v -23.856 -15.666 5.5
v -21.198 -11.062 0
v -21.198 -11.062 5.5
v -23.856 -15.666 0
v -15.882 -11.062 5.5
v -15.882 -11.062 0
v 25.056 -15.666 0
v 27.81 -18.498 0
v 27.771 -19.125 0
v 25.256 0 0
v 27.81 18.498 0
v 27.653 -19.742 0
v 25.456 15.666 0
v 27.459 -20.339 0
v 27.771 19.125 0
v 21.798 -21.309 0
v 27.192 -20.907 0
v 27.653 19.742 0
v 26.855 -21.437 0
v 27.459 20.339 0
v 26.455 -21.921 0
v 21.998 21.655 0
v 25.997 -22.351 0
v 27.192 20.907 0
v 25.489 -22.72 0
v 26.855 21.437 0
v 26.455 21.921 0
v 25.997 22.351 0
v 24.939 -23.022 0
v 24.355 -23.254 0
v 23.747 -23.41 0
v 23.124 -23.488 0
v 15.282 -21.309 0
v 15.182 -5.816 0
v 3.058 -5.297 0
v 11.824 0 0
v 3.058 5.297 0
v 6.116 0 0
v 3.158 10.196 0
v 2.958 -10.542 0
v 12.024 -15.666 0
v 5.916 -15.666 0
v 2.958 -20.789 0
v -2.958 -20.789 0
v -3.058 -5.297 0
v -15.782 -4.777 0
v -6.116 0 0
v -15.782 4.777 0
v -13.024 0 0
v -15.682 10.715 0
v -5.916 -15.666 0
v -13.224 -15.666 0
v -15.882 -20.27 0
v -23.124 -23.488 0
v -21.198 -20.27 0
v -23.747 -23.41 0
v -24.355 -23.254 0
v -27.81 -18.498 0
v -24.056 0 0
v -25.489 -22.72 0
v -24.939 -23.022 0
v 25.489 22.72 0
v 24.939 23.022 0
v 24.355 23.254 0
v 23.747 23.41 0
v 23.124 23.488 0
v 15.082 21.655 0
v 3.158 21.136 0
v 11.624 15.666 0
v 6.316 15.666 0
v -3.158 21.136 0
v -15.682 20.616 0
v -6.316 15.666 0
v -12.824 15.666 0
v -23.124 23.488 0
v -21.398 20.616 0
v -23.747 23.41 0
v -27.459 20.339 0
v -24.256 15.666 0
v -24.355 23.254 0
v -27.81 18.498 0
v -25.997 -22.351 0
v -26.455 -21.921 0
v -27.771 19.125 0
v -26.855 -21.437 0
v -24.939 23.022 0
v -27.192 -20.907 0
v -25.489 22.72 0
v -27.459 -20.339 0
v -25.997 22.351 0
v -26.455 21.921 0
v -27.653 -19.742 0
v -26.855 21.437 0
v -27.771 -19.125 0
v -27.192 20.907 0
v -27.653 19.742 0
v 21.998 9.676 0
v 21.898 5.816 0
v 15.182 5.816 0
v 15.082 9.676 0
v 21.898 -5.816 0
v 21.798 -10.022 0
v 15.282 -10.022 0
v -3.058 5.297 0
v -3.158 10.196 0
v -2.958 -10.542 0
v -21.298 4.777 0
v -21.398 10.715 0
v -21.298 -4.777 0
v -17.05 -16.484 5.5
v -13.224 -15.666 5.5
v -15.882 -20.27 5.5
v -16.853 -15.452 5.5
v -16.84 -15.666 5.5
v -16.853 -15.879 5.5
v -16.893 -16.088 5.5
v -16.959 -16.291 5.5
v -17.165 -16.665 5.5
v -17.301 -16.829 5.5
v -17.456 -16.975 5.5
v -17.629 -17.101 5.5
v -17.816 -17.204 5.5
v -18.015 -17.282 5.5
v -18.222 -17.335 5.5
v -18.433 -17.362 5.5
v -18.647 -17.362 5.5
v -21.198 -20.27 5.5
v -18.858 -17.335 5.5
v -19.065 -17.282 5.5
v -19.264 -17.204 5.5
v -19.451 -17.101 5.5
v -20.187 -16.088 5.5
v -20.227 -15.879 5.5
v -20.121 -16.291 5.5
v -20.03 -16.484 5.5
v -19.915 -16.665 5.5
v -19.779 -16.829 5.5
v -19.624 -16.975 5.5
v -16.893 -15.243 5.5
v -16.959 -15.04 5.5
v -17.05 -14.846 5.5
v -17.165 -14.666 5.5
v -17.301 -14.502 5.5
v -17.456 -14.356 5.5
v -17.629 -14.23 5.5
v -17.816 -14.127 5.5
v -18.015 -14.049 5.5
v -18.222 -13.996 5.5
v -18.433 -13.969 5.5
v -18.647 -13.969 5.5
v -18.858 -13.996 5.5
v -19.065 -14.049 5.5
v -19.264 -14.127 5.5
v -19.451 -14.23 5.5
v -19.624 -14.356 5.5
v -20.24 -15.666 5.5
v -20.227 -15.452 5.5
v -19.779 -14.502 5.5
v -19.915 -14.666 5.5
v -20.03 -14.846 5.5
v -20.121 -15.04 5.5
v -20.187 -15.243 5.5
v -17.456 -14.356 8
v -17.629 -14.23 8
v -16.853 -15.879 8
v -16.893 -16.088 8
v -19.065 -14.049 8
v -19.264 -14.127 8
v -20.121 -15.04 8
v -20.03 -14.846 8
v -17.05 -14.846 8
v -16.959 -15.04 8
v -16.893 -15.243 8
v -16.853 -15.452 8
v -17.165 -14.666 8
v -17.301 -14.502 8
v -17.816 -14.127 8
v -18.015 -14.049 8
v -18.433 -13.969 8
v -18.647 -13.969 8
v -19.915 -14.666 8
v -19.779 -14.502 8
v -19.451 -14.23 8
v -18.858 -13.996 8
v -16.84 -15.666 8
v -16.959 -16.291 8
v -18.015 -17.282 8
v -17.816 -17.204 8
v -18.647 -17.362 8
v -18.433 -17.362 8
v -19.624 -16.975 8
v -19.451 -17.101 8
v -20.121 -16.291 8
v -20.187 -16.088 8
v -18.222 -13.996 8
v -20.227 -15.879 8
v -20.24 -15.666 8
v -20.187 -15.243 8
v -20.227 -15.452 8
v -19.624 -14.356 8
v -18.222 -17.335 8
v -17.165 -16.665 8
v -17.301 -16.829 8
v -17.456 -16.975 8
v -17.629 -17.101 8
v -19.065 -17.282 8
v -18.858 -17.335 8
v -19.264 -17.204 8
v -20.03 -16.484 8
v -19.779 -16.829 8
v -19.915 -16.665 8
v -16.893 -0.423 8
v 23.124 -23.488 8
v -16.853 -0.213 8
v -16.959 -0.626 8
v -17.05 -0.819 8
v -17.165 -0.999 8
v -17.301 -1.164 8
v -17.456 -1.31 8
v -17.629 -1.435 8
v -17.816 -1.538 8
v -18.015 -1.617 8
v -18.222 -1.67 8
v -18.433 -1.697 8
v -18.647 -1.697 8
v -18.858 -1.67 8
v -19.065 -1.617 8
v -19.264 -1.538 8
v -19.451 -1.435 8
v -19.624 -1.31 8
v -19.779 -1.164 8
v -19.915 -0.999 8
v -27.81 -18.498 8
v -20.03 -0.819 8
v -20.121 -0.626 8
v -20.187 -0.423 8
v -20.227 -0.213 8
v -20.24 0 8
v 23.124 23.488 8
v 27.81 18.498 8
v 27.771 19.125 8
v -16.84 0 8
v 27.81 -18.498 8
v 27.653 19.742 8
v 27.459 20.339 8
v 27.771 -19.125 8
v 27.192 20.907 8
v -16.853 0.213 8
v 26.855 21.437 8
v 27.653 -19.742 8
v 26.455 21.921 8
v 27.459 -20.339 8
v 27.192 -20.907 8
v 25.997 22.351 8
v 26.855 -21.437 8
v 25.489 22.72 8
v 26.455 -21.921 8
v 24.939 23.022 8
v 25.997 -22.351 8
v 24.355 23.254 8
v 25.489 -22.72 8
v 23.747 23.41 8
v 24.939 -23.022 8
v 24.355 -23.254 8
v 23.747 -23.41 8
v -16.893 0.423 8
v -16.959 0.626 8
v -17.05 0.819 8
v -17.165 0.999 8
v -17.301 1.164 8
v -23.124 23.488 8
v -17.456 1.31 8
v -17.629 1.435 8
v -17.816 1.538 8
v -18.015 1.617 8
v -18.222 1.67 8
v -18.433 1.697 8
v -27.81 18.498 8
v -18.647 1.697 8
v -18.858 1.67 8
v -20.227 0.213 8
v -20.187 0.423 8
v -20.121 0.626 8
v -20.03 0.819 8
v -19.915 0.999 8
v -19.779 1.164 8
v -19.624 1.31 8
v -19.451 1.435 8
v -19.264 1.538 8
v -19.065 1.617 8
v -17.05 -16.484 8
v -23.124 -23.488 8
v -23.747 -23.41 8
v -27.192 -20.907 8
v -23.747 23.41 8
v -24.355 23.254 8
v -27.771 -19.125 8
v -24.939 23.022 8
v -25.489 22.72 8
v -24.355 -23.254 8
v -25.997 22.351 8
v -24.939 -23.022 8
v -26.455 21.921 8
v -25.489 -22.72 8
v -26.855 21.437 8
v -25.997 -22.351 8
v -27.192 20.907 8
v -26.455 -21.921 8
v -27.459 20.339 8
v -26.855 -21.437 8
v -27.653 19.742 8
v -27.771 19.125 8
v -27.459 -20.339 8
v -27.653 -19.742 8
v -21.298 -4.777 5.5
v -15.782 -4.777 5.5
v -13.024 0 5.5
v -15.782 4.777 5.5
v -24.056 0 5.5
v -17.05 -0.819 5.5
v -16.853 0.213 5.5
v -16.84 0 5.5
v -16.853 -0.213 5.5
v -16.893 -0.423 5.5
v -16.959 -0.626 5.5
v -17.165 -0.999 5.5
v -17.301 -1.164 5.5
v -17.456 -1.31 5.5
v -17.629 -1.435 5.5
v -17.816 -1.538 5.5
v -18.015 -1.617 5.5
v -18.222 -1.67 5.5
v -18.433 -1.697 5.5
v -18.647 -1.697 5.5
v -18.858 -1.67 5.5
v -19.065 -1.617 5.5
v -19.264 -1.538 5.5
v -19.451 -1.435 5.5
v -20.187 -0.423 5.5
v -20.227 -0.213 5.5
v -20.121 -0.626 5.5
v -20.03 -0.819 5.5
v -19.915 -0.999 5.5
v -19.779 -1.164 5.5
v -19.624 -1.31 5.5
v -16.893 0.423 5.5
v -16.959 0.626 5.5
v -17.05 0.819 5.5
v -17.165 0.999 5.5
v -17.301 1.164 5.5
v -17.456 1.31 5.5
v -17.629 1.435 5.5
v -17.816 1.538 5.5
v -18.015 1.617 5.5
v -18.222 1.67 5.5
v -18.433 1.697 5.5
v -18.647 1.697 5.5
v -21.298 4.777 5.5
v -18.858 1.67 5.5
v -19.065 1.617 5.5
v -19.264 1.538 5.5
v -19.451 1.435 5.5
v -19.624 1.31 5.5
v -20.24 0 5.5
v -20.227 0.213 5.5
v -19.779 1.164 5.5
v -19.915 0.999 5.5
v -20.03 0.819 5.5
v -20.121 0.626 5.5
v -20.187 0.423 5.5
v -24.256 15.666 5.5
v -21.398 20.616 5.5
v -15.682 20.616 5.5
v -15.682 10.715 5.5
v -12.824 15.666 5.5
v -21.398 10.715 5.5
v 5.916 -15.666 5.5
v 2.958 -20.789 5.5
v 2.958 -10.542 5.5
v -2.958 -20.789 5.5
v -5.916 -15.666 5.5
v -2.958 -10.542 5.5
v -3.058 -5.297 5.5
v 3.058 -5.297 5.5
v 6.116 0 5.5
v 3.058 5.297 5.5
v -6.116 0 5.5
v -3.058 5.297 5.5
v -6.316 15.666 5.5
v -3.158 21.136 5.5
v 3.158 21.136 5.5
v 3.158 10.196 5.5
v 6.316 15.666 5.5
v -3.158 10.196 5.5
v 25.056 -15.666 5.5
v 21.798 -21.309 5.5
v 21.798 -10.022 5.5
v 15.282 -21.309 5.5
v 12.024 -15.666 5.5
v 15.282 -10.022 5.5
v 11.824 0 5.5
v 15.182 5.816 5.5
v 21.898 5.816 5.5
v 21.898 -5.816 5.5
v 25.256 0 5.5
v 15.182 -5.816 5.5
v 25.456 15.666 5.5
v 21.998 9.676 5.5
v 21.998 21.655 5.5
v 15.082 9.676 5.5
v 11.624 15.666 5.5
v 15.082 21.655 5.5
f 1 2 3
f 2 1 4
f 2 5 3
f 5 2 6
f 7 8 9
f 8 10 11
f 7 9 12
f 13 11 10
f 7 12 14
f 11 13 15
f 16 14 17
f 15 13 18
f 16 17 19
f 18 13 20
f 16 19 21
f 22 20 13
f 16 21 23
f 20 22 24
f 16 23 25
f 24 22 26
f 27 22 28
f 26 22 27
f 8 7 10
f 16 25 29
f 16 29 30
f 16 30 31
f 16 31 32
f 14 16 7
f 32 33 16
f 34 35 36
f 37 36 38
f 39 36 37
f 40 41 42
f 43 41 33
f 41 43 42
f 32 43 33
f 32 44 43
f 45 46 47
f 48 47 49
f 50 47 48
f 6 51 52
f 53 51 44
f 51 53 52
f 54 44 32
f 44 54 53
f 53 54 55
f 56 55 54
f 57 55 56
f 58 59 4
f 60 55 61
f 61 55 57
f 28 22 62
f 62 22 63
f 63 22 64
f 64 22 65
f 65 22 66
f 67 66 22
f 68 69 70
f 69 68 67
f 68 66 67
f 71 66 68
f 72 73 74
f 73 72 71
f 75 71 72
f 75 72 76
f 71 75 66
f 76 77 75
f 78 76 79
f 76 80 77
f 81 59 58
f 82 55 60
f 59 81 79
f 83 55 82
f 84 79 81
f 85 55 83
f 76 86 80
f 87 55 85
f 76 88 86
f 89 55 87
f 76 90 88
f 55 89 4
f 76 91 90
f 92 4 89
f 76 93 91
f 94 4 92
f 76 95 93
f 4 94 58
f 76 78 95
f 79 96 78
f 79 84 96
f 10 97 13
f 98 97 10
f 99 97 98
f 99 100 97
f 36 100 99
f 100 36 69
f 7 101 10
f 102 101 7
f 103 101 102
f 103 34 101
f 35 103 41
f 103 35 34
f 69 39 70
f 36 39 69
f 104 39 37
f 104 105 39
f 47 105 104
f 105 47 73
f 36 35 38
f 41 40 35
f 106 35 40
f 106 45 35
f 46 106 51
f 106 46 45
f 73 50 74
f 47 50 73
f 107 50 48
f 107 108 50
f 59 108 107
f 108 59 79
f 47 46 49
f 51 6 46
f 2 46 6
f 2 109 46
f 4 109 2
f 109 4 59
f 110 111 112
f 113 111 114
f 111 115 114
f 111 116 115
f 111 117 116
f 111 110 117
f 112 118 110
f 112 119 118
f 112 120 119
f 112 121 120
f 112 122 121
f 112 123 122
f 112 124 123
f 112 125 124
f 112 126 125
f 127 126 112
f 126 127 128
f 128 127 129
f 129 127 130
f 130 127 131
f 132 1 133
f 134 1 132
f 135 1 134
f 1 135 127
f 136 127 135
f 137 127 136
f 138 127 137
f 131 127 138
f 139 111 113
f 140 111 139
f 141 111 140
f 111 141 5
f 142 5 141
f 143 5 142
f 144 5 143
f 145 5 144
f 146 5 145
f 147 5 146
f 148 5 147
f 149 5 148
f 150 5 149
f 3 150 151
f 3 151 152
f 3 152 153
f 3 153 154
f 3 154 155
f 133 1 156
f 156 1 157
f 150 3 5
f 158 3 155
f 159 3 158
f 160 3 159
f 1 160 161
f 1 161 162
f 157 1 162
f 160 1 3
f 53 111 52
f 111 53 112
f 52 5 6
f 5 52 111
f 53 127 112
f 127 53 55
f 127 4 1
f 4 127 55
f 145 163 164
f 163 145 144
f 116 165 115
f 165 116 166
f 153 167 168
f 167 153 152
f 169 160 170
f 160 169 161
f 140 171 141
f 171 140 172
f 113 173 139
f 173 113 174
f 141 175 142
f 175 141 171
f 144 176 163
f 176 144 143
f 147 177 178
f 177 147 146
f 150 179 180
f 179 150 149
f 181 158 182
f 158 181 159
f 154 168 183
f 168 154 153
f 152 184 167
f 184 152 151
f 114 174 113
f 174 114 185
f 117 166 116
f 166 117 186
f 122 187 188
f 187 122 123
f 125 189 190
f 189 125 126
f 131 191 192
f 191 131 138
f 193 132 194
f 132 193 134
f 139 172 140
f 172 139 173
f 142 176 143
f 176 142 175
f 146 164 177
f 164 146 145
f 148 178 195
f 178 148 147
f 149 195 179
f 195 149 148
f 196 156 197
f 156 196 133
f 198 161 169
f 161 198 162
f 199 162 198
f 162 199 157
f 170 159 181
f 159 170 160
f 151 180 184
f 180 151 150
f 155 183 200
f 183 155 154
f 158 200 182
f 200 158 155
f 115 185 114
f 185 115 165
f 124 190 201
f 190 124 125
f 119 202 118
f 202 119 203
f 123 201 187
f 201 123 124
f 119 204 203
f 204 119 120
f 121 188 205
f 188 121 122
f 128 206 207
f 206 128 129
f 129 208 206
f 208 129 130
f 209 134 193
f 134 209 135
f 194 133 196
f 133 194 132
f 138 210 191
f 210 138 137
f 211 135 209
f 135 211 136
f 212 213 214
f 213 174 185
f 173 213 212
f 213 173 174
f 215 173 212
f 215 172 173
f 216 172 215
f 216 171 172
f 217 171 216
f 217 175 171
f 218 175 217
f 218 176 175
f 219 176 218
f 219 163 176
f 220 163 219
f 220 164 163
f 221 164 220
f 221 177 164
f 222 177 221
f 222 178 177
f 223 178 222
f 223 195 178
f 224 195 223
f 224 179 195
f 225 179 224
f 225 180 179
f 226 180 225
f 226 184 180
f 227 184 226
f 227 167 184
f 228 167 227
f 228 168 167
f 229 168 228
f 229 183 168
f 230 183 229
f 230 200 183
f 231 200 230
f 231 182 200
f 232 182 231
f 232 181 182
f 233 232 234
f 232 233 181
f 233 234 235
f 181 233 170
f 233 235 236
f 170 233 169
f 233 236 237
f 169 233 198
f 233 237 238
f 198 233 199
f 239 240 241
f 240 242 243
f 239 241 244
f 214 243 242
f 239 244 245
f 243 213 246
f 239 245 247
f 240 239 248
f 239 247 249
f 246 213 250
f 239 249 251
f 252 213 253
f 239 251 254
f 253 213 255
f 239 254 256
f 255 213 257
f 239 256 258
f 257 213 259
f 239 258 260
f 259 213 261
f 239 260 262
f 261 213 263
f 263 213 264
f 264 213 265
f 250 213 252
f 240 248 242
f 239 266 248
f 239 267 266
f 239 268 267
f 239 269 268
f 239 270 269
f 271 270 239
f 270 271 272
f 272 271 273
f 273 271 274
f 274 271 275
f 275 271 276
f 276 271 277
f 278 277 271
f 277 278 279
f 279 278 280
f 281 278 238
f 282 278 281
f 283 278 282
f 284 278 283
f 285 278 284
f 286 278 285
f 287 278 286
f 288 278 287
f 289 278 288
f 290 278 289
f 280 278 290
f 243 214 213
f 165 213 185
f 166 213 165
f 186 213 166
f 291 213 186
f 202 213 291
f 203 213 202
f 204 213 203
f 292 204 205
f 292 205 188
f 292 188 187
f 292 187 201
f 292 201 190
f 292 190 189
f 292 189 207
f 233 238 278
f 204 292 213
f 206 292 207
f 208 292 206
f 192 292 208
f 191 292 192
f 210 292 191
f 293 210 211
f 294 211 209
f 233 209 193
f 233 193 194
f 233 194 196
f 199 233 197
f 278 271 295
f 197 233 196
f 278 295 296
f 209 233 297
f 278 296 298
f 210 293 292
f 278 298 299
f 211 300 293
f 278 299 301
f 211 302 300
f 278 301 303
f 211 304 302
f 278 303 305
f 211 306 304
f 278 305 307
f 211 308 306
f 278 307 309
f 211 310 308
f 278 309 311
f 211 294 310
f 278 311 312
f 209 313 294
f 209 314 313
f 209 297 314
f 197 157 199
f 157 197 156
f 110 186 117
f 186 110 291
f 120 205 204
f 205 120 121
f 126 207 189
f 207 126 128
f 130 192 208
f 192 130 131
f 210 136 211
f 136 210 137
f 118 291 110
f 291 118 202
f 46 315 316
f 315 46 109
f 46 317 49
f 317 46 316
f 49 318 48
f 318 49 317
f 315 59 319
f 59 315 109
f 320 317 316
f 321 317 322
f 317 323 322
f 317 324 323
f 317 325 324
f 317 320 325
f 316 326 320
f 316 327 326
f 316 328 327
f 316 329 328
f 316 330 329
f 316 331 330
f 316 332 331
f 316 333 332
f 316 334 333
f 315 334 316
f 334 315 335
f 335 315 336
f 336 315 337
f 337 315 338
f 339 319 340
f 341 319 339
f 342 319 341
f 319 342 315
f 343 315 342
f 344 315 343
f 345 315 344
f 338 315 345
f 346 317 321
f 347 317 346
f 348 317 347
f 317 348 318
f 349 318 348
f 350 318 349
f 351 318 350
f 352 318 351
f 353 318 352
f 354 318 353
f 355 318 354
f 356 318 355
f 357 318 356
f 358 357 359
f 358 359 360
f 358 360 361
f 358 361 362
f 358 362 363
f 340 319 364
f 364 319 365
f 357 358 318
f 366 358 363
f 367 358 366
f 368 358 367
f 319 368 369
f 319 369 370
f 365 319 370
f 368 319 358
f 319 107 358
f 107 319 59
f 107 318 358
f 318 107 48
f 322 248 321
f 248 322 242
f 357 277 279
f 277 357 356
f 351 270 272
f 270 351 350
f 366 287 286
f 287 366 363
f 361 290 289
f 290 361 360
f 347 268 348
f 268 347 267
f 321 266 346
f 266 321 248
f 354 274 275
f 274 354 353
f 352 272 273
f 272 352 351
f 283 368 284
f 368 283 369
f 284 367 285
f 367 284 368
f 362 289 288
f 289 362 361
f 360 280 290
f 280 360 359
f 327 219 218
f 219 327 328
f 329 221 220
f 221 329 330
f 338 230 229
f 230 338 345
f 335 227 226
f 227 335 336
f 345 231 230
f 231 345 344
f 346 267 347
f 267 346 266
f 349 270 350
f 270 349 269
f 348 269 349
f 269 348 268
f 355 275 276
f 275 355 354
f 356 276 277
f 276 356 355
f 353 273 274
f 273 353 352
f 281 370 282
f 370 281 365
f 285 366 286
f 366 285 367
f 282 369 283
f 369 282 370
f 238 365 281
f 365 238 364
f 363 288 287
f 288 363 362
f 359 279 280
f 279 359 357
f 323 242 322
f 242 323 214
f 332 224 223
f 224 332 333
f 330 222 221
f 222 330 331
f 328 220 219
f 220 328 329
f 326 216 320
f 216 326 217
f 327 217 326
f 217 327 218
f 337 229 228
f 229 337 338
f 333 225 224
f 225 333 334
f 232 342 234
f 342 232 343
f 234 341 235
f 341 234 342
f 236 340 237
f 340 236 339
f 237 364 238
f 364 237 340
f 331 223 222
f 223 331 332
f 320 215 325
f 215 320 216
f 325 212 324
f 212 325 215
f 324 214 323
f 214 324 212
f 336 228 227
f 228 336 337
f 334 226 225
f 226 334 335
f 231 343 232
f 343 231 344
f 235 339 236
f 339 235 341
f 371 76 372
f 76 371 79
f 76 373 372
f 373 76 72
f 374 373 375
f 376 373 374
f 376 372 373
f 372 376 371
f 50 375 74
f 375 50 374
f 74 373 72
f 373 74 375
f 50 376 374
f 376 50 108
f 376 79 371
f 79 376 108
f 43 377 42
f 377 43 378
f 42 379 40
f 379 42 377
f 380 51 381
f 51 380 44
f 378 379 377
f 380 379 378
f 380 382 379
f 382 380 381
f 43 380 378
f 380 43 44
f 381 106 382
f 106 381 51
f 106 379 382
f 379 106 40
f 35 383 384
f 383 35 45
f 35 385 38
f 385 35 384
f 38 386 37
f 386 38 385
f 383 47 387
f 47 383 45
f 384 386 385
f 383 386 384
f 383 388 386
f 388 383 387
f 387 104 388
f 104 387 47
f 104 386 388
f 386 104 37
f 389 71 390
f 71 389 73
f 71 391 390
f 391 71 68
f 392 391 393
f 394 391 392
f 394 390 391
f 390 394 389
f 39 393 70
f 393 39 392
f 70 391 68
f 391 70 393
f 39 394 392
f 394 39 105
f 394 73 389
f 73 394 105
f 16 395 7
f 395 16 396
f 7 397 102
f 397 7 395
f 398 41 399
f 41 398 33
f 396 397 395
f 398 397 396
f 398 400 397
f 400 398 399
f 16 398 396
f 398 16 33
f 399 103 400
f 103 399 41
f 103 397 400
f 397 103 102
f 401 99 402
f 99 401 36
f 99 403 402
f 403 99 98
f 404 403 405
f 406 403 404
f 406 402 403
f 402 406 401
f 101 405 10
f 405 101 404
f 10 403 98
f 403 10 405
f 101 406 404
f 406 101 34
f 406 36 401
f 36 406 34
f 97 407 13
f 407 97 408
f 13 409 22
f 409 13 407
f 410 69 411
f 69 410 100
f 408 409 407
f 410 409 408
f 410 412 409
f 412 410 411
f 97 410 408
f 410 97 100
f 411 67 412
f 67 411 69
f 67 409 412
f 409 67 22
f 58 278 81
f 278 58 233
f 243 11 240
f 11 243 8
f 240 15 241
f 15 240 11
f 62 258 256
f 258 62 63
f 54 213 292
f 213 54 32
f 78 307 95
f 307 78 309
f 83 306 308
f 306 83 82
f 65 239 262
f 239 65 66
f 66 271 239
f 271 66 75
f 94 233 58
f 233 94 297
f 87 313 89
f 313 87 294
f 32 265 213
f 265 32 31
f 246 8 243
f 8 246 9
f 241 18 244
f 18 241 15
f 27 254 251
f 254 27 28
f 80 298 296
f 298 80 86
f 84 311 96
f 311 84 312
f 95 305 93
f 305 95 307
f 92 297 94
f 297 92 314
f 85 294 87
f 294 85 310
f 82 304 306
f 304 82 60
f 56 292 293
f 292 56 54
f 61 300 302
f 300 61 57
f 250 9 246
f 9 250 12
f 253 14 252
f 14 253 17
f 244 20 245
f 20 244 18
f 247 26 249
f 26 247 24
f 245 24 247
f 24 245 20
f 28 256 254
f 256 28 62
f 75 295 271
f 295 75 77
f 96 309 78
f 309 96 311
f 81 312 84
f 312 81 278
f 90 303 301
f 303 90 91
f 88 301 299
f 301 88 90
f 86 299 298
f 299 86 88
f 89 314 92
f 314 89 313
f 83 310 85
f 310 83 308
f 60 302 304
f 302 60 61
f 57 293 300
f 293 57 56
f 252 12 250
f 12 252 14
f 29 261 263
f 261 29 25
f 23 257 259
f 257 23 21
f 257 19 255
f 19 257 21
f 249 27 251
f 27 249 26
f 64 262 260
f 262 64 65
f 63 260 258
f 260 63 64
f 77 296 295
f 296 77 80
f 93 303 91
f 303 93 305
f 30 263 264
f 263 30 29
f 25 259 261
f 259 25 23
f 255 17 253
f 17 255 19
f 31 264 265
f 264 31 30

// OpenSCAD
$fn = 50;


difference() {
	union() {
		translate(v = [0, 0, 0]) {
			rotate(a = [0, 0, 0]) {
				hull() {
					translate(v = [-22.8100000000, 18.4982668977, 0]) {
						rotate(a = [0, 0, 0]) {
							translate(v = [0, 0, 0]) {
								rotate(a = [0, 0, 0]) {
									cylinder(h = 8, r = 5);
								}
							}
						}
					}
					translate(v = [22.8100000000, 18.4982668977, 0]) {
						rotate(a = [0, 0, 0]) {
							translate(v = [0, 0, 0]) {
								rotate(a = [0, 0, 0]) {
									cylinder(h = 8, r = 5);
								}
							}
						}
					}
					translate(v = [-22.8100000000, -18.4982668977, 0]) {
						rotate(a = [0, 0, 0]) {
							translate(v = [0, 0, 0]) {
								rotate(a = [0, 0, 0]) {
									cylinder(h = 8, r = 5);
								}
							}
						}
					}
					translate(v = [22.8100000000, -18.4982668977, 0]) {
						rotate(a = [0, 0, 0]) {
							translate(v = [0, 0, 0]) {
								rotate(a = [0, 0, 0]) {
									cylinder(h = 8, r = 5);
								}
							}
						}
					}
				}
			}
		}
	}
	union() {
		translate(v = [-18.5400000000, -15.6655112652, 0]) {
			rotate(a = [0, 0, 0]) {
				#translate(v = [0, 0, 0]) {
					rotate(a = [0, 0, 0]) {
						linear_extrude(height = 5.5000000000) {
							polygon(points = [[5.3162000000, 0.0000000000], [2.6581000000, 4.6039642516], [-2.6581000000, 4.6039642516], [-5.3162000000, 0.0000000000], [-2.6581000000, -4.6039642516], [2.6581000000, -4.6039642516]]);
						}
					}
				}
			}
		}
		translate(v = [-18.5400000000, -15.6655112652, 0]) {
			rotate(a = [0, 0, 0]) {
				cylinder(h = 8, r = 1.7000000000);
			}
		}
		translate(v = [-18.5400000000, 0.0000000000, 0]) {
			rotate(a = [0, 0, 0]) {
				#translate(v = [0, 0, 0]) {
					rotate(a = [0, 0, 0]) {
						linear_extrude(height = 5.5000000000) {
							polygon(points = [[5.5162000000, 0.0000000000], [2.7581000000, 4.7771693324], [-2.7581000000, 4.7771693324], [-5.5162000000, 0.0000000000], [-2.7581000000, -4.7771693324], [2.7581000000, -4.7771693324]]);
						}
					}
				}
			}
		}
		translate(v = [-18.5400000000, 0.0000000000, 0]) {
			rotate(a = [0, 0, 0]) {
				cylinder(h = 8, r = 1.7000000000);
			}
		}
		translate(v = [-18.5400000000, 15.6655112652, 0]) {
			rotate(a = [0, 0, 0]) {
				#translate(v = [0, 0, 0]) {
					rotate(a = [0, 0, 0]) {
						linear_extrude(height = 5.5000000000) {
							polygon(points = [[5.7162000000, 0.0000000000], [2.8581000000, 4.9503744131], [-2.8581000000, 4.9503744131], [-5.7162000000, 0.0000000000], [-2.8581000000, -4.9503744131], [2.8581000000, -4.9503744131]]);
						}
					}
				}
			}
		}
		translate(v = [0.0000000000, -15.6655112652, 0]) {
			rotate(a = [0, 0, 0]) {
				#translate(v = [0, 0, 0]) {
					rotate(a = [0, 0, 0]) {
						linear_extrude(height = 5.5000000000) {
							polygon(points = [[5.9162000000, 0.0000000000], [2.9581000000, 5.1235794939], [-2.9581000000, 5.1235794939], [-5.9162000000, 0.0000000000], [-2.9581000000, -5.1235794939], [2.9581000000, -5.1235794939]]);
						}
					}
				}
			}
		}
		translate(v = [0.0000000000, 0.0000000000, 0]) {
			rotate(a = [0, 0, 0]) {
				#translate(v = [0, 0, 0]) {
					rotate(a = [0, 0, 0]) {
						linear_extrude(height = 5.5000000000) {
							polygon(points = [[6.1162000000, 0.0000000000], [3.0581000000, 5.2967845746], [-3.0581000000, 5.2967845746], [-6.1162000000, 0.0000000000], [-3.0581000000, -5.2967845746], [3.0581000000, -5.2967845746]]);
						}
					}
				}
			}
		}
		translate(v = [0.0000000000, 15.6655112652, 0]) {
			rotate(a = [0, 0, 0]) {
				#translate(v = [0, 0, 0]) {
					rotate(a = [0, 0, 0]) {
						linear_extrude(height = 5.5000000000) {
							polygon(points = [[6.3162000000, 0.0000000000], [3.1581000000, 5.4699896554], [-3.1581000000, 5.4699896554], [-6.3162000000, 0.0000000000], [-3.1581000000, -5.4699896554], [3.1581000000, -5.4699896554]]);
						}
					}
				}
			}
		}
		translate(v = [18.5400000000, -15.6655112652, 0]) {
			rotate(a = [0, 0, 0]) {
				#translate(v = [0, 0, 0]) {
					rotate(a = [0, 0, 0]) {
						linear_extrude(height = 5.5000000000) {
							polygon(points = [[6.5162000000, 0.0000000000], [3.2581000000, 5.6431947361], [-3.2581000000, 5.6431947361], [-6.5162000000, 0.0000000000], [-3.2581000000, -5.6431947361], [3.2581000000, -5.6431947361]]);
						}
					}
				}
			}
		}
		translate(v = [18.5400000000, 0.0000000000, 0]) {
			rotate(a = [0, 0, 0]) {
				#translate(v = [0, 0, 0]) {
					rotate(a = [0, 0, 0]) {
						linear_extrude(height = 5.5000000000) {
							polygon(points = [[6.7162000000, 0.0000000000], [3.3581000000, 5.8163998169], [-3.3581000000, 5.8163998169], [-6.7162000000, 0.0000000000], [-3.3581000000, -5.8163998169], [3.3581000000, -5.8163998169]]);
						}
					}
				}
			}
		}
		translate(v = [18.5400000000, 15.6655112652, 0]) {
			rotate(a = [0, 0, 0]) {
				#translate(v = [0, 0, 0]) {
					rotate(a = [0, 0, 0]) {
						linear_extrude(height = 5.5000000000) {
							polygon(points = [[6.9162000000, 0.0000000000], [3.4581000000, 5.9896048977], [-3.4581000000, 5.9896048977], [-6.9162000000, 0.0000000000], [-3.4581000000, -5.9896048977], [3.4581000000, -5.9896048977]]);
						}
					}
				}
			}
		}
	}
}
